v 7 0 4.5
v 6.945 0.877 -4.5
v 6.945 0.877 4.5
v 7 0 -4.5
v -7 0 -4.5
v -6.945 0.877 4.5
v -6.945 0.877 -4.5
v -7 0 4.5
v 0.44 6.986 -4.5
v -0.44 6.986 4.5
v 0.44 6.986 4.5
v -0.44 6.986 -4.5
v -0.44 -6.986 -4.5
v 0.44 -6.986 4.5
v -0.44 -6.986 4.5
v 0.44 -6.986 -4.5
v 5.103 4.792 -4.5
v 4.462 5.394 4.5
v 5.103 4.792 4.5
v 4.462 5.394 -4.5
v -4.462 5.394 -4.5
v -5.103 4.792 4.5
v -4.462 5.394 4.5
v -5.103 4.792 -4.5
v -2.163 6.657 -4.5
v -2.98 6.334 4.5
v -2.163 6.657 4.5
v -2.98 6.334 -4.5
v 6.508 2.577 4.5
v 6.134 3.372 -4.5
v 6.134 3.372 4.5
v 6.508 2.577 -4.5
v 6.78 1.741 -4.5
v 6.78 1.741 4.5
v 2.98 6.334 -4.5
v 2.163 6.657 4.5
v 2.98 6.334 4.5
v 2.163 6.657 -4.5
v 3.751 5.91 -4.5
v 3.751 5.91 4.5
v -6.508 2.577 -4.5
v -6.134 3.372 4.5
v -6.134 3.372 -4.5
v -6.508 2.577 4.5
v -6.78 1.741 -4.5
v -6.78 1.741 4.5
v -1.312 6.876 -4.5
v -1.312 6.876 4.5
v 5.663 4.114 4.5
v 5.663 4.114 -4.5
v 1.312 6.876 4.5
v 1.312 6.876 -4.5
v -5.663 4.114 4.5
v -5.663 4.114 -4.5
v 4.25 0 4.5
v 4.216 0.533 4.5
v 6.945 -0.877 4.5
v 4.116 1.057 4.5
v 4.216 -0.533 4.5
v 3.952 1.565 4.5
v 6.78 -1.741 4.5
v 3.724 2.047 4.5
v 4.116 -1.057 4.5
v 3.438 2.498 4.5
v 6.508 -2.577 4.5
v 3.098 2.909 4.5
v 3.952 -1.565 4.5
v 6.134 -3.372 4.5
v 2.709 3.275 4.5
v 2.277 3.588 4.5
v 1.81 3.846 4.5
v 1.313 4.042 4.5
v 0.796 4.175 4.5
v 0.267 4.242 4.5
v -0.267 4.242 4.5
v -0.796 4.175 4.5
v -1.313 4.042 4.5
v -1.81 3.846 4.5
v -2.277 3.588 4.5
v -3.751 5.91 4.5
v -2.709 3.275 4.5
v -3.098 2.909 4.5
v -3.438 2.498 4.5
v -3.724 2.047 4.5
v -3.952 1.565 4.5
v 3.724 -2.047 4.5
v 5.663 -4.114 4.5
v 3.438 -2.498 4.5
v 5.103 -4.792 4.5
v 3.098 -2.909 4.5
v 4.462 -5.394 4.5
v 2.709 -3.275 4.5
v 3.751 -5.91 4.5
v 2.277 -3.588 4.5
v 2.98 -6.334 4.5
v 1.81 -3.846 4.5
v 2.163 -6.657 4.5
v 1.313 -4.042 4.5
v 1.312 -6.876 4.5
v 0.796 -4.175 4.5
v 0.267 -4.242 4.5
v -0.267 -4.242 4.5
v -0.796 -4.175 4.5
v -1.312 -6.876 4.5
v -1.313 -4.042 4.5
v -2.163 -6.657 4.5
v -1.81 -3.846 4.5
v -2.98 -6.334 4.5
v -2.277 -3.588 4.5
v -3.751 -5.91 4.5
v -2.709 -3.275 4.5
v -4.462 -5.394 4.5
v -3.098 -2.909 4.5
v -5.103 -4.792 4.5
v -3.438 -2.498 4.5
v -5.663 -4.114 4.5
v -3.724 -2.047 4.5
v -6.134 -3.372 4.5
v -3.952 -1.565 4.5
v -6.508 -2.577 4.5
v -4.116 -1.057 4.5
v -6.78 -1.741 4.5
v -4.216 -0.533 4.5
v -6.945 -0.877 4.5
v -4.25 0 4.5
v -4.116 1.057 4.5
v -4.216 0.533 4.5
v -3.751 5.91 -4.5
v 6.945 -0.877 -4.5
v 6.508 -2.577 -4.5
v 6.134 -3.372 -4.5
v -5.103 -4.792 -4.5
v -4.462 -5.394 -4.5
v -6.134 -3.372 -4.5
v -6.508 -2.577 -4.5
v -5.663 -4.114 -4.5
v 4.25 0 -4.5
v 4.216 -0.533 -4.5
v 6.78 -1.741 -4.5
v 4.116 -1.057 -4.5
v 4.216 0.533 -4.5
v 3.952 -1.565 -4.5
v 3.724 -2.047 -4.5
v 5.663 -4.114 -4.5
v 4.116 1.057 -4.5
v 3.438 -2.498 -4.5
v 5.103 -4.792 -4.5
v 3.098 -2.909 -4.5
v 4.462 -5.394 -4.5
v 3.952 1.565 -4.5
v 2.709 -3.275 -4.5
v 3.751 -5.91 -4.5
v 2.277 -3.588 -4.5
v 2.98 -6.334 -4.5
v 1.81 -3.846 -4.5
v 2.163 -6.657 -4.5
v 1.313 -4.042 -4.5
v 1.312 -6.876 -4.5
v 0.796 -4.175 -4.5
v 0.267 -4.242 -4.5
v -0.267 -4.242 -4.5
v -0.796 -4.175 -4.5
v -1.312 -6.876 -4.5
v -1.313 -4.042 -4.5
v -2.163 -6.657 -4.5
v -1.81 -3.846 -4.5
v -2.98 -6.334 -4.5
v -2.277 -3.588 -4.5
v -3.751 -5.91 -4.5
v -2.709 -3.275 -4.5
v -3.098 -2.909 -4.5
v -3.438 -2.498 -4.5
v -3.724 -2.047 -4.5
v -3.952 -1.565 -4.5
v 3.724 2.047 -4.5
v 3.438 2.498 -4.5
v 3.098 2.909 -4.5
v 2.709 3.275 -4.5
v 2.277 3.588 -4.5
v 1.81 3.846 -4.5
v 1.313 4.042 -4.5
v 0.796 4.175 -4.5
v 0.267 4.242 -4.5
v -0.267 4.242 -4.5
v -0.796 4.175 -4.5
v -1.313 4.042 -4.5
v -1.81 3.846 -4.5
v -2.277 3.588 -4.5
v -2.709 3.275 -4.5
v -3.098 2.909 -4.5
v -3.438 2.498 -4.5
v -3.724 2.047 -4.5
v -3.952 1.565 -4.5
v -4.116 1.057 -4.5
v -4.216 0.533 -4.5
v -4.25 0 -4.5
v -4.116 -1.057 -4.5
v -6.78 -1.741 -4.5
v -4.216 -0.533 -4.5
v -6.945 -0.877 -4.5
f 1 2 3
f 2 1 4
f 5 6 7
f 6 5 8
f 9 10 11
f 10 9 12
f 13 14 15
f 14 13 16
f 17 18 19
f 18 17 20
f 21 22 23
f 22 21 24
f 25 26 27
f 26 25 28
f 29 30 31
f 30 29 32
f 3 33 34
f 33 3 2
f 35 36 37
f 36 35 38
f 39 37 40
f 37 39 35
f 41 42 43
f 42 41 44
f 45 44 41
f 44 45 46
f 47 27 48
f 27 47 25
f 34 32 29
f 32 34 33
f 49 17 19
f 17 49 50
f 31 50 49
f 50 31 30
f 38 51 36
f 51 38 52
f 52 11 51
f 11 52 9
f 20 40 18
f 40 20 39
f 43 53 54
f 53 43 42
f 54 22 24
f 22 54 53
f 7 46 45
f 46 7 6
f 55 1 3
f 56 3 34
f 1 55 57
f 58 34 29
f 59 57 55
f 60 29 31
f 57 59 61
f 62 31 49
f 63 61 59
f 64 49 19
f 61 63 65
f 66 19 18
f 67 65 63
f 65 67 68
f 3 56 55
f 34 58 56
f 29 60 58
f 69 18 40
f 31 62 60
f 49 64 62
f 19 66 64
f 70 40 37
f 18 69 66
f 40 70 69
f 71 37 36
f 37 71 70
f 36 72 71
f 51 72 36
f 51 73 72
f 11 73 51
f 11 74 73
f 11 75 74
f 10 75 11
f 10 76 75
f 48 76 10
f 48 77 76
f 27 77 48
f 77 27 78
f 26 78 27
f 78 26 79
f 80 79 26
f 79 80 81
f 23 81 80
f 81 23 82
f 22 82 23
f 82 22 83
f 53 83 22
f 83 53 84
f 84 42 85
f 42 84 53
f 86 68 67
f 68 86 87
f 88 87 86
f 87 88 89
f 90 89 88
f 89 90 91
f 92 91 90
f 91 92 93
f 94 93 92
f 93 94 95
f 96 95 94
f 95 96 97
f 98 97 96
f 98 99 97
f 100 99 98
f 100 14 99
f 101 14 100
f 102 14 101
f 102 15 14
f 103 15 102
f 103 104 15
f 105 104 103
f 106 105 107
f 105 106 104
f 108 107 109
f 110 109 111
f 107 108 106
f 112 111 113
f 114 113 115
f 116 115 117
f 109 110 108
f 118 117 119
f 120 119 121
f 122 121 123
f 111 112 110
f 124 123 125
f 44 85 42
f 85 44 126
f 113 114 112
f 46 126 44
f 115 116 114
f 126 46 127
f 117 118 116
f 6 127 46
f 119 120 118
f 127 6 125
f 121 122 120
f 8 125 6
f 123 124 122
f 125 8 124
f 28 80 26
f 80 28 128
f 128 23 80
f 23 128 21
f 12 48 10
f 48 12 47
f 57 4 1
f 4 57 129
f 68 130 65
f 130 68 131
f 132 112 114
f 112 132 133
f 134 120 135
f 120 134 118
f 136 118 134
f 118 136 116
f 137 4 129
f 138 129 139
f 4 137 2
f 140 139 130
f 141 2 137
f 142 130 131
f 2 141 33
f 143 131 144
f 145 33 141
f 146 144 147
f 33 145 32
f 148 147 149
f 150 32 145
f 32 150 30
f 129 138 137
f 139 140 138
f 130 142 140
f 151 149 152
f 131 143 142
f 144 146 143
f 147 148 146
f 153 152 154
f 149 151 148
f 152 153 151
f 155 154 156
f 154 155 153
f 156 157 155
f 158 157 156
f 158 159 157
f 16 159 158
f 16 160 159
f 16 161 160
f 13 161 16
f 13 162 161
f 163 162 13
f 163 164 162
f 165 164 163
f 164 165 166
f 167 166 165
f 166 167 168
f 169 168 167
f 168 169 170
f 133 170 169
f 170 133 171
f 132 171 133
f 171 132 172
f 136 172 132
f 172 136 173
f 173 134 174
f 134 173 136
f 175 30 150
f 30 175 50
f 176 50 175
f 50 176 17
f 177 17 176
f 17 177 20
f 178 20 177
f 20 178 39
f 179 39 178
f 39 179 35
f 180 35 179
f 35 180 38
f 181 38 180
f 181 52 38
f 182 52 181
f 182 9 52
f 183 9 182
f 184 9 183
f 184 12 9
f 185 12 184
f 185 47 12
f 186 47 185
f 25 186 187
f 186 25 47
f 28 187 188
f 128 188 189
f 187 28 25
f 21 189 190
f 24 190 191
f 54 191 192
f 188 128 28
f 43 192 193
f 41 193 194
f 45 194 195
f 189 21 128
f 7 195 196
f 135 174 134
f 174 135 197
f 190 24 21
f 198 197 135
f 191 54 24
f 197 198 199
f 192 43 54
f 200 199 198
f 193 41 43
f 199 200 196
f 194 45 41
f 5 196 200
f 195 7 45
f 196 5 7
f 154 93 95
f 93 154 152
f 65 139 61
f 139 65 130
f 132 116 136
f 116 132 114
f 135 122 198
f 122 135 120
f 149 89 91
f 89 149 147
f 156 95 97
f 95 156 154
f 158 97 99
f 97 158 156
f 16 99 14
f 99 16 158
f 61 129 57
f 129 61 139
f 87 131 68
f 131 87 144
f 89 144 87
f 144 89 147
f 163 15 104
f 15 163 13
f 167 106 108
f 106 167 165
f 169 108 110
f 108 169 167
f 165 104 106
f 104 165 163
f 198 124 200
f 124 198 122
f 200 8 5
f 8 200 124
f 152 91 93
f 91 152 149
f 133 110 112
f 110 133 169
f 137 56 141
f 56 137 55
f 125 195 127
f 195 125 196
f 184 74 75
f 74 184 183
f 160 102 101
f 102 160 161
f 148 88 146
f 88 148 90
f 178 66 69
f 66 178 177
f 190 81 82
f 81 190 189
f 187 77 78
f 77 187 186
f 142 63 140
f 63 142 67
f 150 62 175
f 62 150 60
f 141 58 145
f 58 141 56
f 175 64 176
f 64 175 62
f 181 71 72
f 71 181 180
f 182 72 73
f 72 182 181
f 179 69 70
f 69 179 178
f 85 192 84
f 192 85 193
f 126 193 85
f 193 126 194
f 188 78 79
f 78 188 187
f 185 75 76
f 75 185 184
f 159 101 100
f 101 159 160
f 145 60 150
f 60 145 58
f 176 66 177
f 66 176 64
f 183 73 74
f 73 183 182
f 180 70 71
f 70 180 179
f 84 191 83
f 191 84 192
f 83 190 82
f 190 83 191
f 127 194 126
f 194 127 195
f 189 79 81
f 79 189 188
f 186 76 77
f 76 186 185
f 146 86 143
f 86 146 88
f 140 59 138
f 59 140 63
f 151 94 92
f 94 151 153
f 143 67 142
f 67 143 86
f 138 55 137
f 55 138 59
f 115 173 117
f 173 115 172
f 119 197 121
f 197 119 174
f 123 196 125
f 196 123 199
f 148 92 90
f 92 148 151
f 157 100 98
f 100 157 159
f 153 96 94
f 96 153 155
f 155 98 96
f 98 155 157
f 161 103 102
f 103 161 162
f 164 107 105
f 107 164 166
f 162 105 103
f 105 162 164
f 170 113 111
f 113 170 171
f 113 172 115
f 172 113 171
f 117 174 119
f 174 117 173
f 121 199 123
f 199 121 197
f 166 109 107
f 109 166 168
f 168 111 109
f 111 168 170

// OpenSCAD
$fn = 50;


difference() {
	union() {
		translate(v = [0, 0, -4.5000000000]) {
			cylinder(h = 9, r = 7.0000000000);
		}
	}
	union() {
		translate(v = [0, 0, -100.0000000000]) {
			cylinder(h = 200, r = 4.2500000000);
		}
	}
}
